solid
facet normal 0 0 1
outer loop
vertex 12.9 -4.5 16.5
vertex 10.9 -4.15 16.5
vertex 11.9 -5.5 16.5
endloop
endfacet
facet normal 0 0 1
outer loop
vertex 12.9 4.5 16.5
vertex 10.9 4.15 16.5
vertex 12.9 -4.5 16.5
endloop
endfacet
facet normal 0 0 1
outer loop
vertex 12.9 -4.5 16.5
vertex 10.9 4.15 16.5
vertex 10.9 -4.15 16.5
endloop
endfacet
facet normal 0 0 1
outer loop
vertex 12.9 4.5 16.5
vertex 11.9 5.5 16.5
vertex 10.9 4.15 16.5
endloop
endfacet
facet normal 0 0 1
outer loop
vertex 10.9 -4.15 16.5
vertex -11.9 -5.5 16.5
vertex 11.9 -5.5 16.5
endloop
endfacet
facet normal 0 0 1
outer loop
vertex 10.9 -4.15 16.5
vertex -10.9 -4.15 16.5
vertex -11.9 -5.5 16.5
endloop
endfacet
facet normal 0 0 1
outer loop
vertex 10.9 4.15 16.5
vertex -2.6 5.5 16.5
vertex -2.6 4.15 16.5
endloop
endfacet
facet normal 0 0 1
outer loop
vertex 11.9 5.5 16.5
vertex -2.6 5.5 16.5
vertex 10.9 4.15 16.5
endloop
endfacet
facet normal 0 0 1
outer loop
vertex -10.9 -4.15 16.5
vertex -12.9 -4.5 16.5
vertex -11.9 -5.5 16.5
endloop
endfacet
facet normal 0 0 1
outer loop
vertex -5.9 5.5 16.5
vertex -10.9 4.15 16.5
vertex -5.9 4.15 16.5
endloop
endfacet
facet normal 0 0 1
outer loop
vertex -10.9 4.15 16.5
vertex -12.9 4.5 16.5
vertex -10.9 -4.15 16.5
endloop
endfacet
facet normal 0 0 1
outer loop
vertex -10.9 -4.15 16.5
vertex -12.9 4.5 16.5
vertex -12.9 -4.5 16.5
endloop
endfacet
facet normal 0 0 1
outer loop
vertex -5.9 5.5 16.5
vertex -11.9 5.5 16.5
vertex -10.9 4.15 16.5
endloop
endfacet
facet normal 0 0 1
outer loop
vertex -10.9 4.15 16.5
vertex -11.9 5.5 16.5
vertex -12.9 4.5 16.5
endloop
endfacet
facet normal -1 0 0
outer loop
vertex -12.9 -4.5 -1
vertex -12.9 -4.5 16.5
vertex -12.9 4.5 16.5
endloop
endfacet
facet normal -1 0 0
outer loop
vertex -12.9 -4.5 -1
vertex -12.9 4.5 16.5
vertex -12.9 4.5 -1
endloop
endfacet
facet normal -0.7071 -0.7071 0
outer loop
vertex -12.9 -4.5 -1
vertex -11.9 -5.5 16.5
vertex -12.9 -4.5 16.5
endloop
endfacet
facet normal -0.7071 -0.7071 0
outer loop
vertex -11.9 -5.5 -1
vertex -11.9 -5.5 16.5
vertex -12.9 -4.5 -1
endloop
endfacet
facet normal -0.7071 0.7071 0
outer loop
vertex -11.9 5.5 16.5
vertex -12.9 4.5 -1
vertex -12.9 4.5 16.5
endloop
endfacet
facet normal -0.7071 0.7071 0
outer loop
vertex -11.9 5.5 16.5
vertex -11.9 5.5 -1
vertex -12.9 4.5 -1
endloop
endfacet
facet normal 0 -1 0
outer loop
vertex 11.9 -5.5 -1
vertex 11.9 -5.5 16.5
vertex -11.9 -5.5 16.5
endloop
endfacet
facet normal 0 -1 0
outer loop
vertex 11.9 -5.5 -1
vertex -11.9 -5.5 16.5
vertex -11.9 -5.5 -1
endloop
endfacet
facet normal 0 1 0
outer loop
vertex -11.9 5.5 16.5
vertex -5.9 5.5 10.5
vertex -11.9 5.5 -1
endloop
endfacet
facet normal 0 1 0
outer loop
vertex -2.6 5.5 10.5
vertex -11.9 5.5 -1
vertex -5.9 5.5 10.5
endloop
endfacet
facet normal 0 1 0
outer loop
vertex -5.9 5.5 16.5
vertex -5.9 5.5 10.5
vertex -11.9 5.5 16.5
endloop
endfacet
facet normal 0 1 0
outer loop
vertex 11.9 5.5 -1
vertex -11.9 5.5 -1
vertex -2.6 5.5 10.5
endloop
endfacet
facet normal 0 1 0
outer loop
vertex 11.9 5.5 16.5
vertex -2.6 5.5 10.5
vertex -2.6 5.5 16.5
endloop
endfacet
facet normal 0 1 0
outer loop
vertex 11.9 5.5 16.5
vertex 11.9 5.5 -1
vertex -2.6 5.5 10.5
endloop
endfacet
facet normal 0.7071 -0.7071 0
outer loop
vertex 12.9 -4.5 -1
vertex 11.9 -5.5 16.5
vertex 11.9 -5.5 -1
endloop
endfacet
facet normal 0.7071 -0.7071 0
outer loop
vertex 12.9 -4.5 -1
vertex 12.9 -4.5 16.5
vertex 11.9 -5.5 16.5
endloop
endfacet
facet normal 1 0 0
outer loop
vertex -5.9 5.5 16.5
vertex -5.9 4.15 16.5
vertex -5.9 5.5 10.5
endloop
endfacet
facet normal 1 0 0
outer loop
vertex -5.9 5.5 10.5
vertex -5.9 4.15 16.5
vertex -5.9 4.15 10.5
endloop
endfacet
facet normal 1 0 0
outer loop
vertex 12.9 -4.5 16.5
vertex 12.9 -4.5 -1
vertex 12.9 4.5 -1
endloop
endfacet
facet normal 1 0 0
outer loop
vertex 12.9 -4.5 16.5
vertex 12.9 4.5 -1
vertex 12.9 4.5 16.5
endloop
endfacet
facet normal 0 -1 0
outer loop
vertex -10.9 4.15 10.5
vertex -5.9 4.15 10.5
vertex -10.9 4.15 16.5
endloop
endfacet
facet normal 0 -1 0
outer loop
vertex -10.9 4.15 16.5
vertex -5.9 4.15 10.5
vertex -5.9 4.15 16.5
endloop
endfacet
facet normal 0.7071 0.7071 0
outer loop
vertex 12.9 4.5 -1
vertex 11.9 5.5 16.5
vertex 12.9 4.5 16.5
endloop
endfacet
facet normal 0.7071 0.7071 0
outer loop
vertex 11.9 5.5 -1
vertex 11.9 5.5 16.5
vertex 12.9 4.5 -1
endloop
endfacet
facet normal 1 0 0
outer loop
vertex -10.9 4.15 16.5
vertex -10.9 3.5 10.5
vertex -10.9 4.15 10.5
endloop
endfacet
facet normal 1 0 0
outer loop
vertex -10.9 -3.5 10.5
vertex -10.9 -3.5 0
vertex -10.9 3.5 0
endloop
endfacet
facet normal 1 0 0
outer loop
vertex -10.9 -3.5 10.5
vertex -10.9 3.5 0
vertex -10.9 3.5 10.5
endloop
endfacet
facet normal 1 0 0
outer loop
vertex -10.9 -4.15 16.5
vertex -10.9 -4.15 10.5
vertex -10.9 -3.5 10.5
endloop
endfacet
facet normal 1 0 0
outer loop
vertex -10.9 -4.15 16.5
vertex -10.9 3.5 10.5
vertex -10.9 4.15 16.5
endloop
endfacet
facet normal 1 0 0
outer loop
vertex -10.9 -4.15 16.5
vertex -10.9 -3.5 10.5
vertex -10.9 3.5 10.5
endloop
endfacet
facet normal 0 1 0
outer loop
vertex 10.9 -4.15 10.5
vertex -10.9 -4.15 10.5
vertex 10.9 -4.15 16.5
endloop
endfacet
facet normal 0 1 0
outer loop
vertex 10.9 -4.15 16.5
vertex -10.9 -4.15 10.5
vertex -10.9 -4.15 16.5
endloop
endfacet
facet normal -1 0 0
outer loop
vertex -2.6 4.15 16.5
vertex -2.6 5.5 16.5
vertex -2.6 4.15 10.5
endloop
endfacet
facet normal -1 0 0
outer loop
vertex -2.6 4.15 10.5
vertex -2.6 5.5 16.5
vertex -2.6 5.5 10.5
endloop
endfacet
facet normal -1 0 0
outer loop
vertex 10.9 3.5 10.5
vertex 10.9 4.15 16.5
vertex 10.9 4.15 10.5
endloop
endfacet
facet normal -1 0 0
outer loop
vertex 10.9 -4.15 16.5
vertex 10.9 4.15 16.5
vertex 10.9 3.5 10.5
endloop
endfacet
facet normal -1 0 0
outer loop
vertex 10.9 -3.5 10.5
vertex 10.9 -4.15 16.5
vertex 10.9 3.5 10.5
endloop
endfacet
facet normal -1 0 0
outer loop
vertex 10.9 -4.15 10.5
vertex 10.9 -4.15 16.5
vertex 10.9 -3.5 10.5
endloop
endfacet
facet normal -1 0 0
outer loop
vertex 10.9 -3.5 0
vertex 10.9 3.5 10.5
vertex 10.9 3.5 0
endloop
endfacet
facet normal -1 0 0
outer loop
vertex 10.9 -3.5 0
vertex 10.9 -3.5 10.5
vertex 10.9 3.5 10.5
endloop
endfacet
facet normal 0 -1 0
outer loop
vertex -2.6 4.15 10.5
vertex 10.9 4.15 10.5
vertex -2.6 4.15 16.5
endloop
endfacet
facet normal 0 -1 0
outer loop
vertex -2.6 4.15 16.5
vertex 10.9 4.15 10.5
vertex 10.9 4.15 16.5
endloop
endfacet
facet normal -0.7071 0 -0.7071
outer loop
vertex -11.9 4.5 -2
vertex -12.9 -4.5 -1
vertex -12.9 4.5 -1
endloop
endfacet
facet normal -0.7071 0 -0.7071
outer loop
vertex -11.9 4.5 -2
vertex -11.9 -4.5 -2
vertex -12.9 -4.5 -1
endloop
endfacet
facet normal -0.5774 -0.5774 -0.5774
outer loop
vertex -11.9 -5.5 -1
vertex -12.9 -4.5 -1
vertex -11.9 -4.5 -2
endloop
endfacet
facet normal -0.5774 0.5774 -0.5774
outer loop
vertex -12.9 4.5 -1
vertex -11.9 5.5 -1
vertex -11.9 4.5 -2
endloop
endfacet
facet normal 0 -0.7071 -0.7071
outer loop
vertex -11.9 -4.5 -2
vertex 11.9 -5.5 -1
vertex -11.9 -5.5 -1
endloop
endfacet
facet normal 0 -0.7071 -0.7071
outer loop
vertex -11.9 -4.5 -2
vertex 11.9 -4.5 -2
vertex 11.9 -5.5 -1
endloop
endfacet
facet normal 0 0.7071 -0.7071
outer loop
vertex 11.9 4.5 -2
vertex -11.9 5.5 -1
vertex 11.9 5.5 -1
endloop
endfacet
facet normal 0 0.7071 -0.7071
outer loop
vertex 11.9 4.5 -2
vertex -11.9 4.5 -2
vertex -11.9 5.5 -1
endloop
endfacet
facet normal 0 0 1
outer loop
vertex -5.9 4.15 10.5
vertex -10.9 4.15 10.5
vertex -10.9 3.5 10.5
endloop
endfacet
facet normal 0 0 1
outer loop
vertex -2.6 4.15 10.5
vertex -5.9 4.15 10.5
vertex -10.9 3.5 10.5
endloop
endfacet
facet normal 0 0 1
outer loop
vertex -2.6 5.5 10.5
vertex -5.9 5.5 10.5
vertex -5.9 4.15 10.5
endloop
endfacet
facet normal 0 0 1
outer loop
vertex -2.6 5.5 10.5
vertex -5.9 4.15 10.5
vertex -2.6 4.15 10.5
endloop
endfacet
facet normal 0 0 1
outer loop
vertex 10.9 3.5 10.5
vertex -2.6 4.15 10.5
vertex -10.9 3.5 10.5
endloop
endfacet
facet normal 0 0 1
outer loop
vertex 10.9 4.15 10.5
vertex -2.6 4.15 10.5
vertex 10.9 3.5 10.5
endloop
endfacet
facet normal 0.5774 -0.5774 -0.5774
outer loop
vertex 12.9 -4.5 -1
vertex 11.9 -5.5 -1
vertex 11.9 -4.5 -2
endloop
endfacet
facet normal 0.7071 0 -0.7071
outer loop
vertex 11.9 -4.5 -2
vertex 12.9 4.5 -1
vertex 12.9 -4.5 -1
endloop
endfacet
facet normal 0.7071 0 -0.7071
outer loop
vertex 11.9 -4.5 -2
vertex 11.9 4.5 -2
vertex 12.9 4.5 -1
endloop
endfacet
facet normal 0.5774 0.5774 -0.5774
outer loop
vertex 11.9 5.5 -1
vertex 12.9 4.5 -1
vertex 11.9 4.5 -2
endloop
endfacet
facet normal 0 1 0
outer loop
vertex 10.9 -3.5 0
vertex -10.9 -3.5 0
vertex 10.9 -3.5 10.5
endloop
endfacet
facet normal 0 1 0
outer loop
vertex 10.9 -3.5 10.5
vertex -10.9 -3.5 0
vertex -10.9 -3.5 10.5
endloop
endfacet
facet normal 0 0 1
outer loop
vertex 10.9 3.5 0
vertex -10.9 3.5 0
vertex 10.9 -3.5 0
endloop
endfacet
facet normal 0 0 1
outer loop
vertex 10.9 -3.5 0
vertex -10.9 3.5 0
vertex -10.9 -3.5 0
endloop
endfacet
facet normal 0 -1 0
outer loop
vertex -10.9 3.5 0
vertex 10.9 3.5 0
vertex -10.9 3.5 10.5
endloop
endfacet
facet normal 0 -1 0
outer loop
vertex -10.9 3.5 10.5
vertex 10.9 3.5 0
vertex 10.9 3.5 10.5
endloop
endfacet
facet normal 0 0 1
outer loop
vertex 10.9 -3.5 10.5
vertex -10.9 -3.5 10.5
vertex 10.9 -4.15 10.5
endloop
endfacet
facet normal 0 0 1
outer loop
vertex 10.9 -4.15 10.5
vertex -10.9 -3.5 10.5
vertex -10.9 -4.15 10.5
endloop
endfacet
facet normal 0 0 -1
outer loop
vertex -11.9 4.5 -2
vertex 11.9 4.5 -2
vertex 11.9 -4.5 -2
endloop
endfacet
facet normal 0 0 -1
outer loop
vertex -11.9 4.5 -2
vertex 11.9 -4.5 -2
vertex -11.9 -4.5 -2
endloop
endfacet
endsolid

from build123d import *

# Parameters (mm, degrees)
SKETCH_W      = 21.8
SKETCH_H      = 7
PAD_DEPTH     = 10.5
THICKNESS_T   = 2
SKETCH001_W   = 25.8
SKETCH001_H   = 11
SKETCH001_W_2 = 21.8
SKETCH001_H_2 = 8.3
PAD001_DEPTH  = 6
SKETCH002_W   = 3.3
SKETCH002_H   = 1.35
POCKET_DEPTH  = 6
CHAMFER_SIZE  = 1


with BuildPart() as part:
    # Sketch → Pad (new body)
    with BuildSketch(Plane.XY):
        Rectangle(SKETCH_W, SKETCH_H)
    extrude(amount=PAD_DEPTH)

    # Thickness
    thickness_openings = [part.faces().sort_by_distance(p)[0] for p in [
        (0, 0, 10.5),
    ]]
    offset(amount=THICKNESS_T, openings=thickness_openings, kind=Kind.INTERSECTION)

    # Sketch001 (on Face6 of Thickness) → Pad001 (join)
    with BuildSketch(Plane.XY.offset(10.5)):
        Rectangle(SKETCH001_W, SKETCH001_H)
        Rectangle(SKETCH001_W_2, SKETCH001_H_2, mode=Mode.SUBTRACT)
    extrude(amount=PAD001_DEPTH)

    # Sketch002 (on Face8 of Pad001) → Pocket (cut)
    with BuildSketch(Plane.XY.offset(16.5)):
        with Locations((-4.25, 4.825)):
            Rectangle(SKETCH002_W, SKETCH002_H)
    extrude(amount=-POCKET_DEPTH, mode=Mode.SUBTRACT)

    # Chamfer
    chamfer_edges = [part.edges().sort_by_distance(p)[0] for p in [
        (-12.9, -5.5, 7.25),
        (12.9, -5.5, 7.25),
        (-12.9, 5.5, 7.25),
        (12.9, 5.5, 7.25),
        (-12.9, 0, -2),
        (0, -5.5, -2),
        (0, 5.5, -2),
        (12.9, 0, -2),
    ]]
    chamfer(chamfer_edges, length=CHAMFER_SIZE)


solid = part.part
